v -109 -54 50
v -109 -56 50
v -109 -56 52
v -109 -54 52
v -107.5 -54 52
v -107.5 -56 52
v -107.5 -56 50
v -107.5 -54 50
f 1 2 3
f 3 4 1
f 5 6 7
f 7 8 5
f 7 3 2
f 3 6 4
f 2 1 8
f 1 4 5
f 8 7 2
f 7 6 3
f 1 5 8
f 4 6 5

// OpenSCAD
// file: ../../../cad/v3/hardware.scad
include <params.scad>
use <enclosure.scad>
// PROVISIONAL purchased component envelopes; not production part drawings.
module motor() {
 union() {
  translate([screw_x-6,motor_front-motor_l,motor_bottom]) cube([12,motor_l,10]);
  yrod(screw_x,motor_front-0.1,axis_z,shaft_d,shaft_l+0.1);
  for(x=[screw_x-3,screw_x+3]) translate([x-0.5,motor_front-motor_l-2,motor_bottom+4.5]) cube([1,2.1,1]);
 }
}
module shaft() { yrod(screw_x,motor_front,axis_z,shaft_d,shaft_l); }
module drive_nut(t=0) {
 difference() {
  translate([screw_x,carriage_back+t+nut_slot_y+0.1,axis_z]) rotate([-90,0,0]) union() {
   cylinder(d=nut_af/cos(30),h=nut_height,$fn=6);
   cylinder(d=nut_flange_d,h=nut_flange_t);
  }
  yrod(screw_x,carriage_back+t+nut_slot_y,axis_z,shaft_d+0.2,nut_height+0.2);
 }
}
module battery_holder(raise=0) {
 // Conservative single envelope including cell, contacts and holder.
 translate([93.2,-52,4.5+raise]) cube([22,74,21]);
}
module esp() {
 union() {
  translate([77.5,28,8.3]) cube([17.8,22.5,1.2]);
  translate([78.5,29,9.5]) cube([15.8,20.5,5]);
  translate([81.5,47,9.5]) cube([9,5,3.3]);
 }
}
module power_board() { translate([99,29,8.3]) cube([15,20,7.2]); }
module bridge_board() { translate([98.5,29,20.3]) cube([15,20,7]); }
module oled() {
 union() {
  translate([87.6,53.5,21.5]) cube([27.8,1.6,27.3]);
  translate([88.15,55.1,25]) cube([26.7,1.4,19.3]);
  translate([96.5,50.5,46]) cube([10,3,2.8]);
 }
}
module button() {
 union() {
  xrod(button_panel_x-button_body_l,button_y,button_z,button_body_d,button_body_l);
  xrod(button_panel_x,button_y,button_z,button_flange_d,2);
  xrod(button_panel_x+2,button_y,button_z,12.9,button_face_l-2);
  // Candidate fastening nut envelope; actual nut diameter/thickness to measure.
  difference() {
   xrod(button_panel_x-6,button_y,button_z,17.8,3);
   xrod(button_panel_x-6.1,button_y,button_z,button_hole_d,3.2);
  }
  // Two terminals only; solder and bend radius need physical confirmation.
  for(y=[button_y-2.425,button_y+2.425])
   translate([button_panel_x-button_body_l-button_terminal_l,y-.3,button_z-1]) cube([button_terminal_l,.6,2]);
 }
}
module acrylic() { translate([window_x0-2,window_y0-2,window_pane_z]) cube([window_x1-window_x0+4,window_y1-window_y0+4,window_pane_t]); }
module hinge_pin() { xrod(hinge_pin_x,hinge_y,hinge_z,2,hinge_pin_len); }
module thread_insert(x,y,z) {
 difference() {
  zhole(x,y,z,insert_od,insert_len);
  zhole(x,y,z-.1,2.05,insert_len+.2);
 }
}
module inserts_fixed() {
 for(p=battery_screws) thread_insert(p[0],p[1],2.9);
 for(x=keeper_x) thread_insert(x,keeper_y,44.3);
}
module inserts_lid() {
 for(p=window_clamps) thread_insert(p[0],p[1],window_ear_top);
}
module battery_connector() { translate([91.5,22,12.5]) cube([4.3,5,5]); }
module motor_pads() {
 // 0.3 mm compressed adhesive shim specification, not unspecified empty space.
 translate([78.5,motor_front-motor_l+.1,motor_bottom-0.3]) cube([12,motor_l-.2,0.3]);
 translate([78.5,motor_front-motor_l+.1,motor_top]) cube([12,motor_l-.2,0.3]);
 difference() {
  translate([78.5,-15,motor_bottom]) cube([12,0.3,10]);
  yrod(screw_x,-15.1,axis_z,4.7,0.6);
 }
 // Rear pad clears the two solder terminals.
 difference() {
  translate([78.5,motor_front-motor_l-.3,motor_bottom]) cube([12,0.3,10]);
  translate([80,motor_front-motor_l-.4,motor_bottom+4]) cube([9,0.5,2]);
 }
}
module board_pads() {
 translate([77.5,28,7.4]) cube([17.8,22.5,0.9]);
 translate([99,29,7.4]) cube([15,20,0.9]);
 translate([98.5,29,19.8]) cube([15,20,0.5]);
}

// Illustrative screw envelopes. Intentional pilot-thread interference is excluded
// from solid collision assertions. They remain in preview, BOM and total bounds.
module screw_down(x,y,top,len,d=2,flush=false) {
 color([0.45,0.47,0.5]) {
  zhole(x,y,top-len,d,len);
  if(flush) translate([x,y,top-1.3]) cylinder(d1=d,d2=4,h=1.3);
  else zhole(x,y,top,d==3?5.5:3.6,d==3?2:1.4);
 }
}
// Canonical fastener table: x,y,z,length,diameter,flush,rotationX,headless,owners.
// Preview and interference verification consume this SAME table.
// Stable connection names: keep existing names when adapting module brackets.
function fastener_ids(kind="fixed") = kind=="drive" ? ["F-nut-cap-left","F-nut-cap-right"] :
 kind=="lid" ? ["F-latch-left","F-latch-right","F-window-rear-left","F-window-rear-right","F-window-front-left","F-window-front-right"] :
 ["F-lock-rear-left","F-lock-rear-right","F-lock-front-left","F-lock-front-right",
 "F-guide-rear-left","F-guide-rear-right","F-guide-front","F-motor-left","F-motor-right",
 "F-tray-left","F-tray-right","F-deck-left","F-deck-right","F-esp-left","F-esp-right",
 "F-driver-left","F-driver-right","F-oled-left","F-oled-right",
 "F-battery-rear-left","F-battery-rear-right","F-battery-front-left","F-battery-front-right",
 "F-hinge-left","F-hinge-right"];
function fastener_specs(kind="fixed",t=0) = kind=="drive" ?
 [for(x=[screw_x-4.5,screw_x+4.5]) [x,carriage_back+t-0.2,46,6,2,false,0,false,["nut_cap","nut_carriage"]]] :
 kind=="lid" ? concat(
 [for(x=[93.5,112.5]) [x,8.5,45.2,8,3,false,180,false,["latch_retainer","lid"]]],
 [for(p=window_clamps) [p[0],p[1],window_inner_z,6,2,true,180,false,["window_grille","lid"]]]) :
 concat(
 [for(p=lock_mounts) [p[0],p[1],32.4,6,2,false,0,false,["lock_base","base_box"]]],
 [for(p=guide_screws) [p[0],p[1],44.9,8,2,false,0,false,["guide_cap","lock_base"]]],
 [for(p=motor_screws) [p[0],p[1],motor_clamp_z+2,8,2,false,0,false,["motor_clamp","lock_base"]]],
 [for(p=tray_screws) [p[0],p[1],7.4,4,2,false,0,false,["electronics_tray","base_box"]]],
 [for(p=deck_screws) [p[0],p[1],19.8,6,2,false,0,false,["upper_deck","electronics_tray"]]],
 [for(x=[76.2,96.7]) [x,39,16.8,6,2,false,0,false,["esp_clip","electronics_tray"]]],
 [for(x=[97,115]) [x,38,29.6,6,2,false,0,false,["upper_clip","upper_deck"]]],
 [for(x=[86.8,115.8]) [x,56.3,51,6,2,true,0,false,["oled_bridge","base_box"]]],
 [for(p=battery_screws) [p[0],p[1],0,8,2,true,180,false,["battery_hatch","base_box"]]],
 [for(i=[0:1]) [keeper_x[i],keeper_y,51.1,6,2,true,0,false,[i==0?"hinge_guard_left":"hinge_guard_right","base_box","inserts_fixed"]]]);
module render_screw(s) {
 translate([s[0],s[1],s[2]]) rotate([s[6],0,0])
 if(s[7]) zhole(0,0,-s[3],s[4],s[3]);
 else screw_down(0,0,0,s[3],s[4],s[5]);
}
module fixed_fasteners() { for(s=fastener_specs("fixed")) render_screw(s); }
module moving_fasteners(t=0) { for(s=fastener_specs("drive",t)) render_screw(s); }
module lid_fasteners() { for(s=fastener_specs("lid")) render_screw(s); }
// file: ../../../cad/v3/electronics.scad
include <params.scad>

module electronics_tray() {
 nominal_difference() {
  union() {
   cube_at([74.5,25.5,5.4],[42,27,2]);
   cube_at([74.5,25.5,7.3],[2.5,27,0.7]);
   cube_at([114,25.5,7.3],[2.5,27,0.7]);
   for(p=deck_screws) translate([p[0],p[1],7.3]) cylinder(r=1.3,h=10.7);
   for(x=[76.2,96.7]) cube_at([x-1.2,37,7.3],[2.4,4,7.5]);
  }
  for(p=tray_screws) pilot(p,5.2,8.2,2.4);
  for(x=[90,117]) zhole(x,24,5.2,6.4,3.2);
  for(p=deck_screws) pilot(p,13,18.2,1.7);
  for(x=[76.2,96.7]) zhole(x,39,9.8,1.7,5.2);
  // Tie slots for the lower power board; underside remains accessible off-box.
  for(x=[99.5,112.75]) cube_at([x,33,5.2],[tie_slot_width,8,3.2]);
 }
}
module upper_deck() {
 nominal_difference() {
  union() {
   cube_at([96,25.3,18],[21,27.2,1.8]);
   cube_at([96,27,19.7],[2.3,24,1.8]);
   cube_at([114.3,27,19.7],[2.7,24,1.8]);
   for(x=[97,115]) cube_at([x-1.3,36,19.7],[2.6,4,7.9]);
  }
  for(p=deck_screws) pilot(p,17.8,20,2.4);
  zhole(96.7,39,17.8,4,0.6);
  for(x=[97,115]) zhole(x,38,22.3,1.7,5.5);
 }
}
module esp_clip() {
 nominal_difference() {
  cube_at([74.5,37,14.8],[24,4,2]);
  for(x=[76.2,96.7]) zhole(x,39,14.6,2.4,2.4);
 }
}
module upper_clip() {
 nominal_difference() {
  cube_at([95.5,36,27.6],[21.5,4,2]);
  for(x=[97,115]) zhole(x,38,27.4,2.2,2.4);
 }
}
module oled_bridge() {
 nominal_difference() {
  cube_at([84.3,52.5,49.2],[34,6.1,1.8]);
  for(x=[86.8,115.8]) {
   zhole(x,56.3,49,2.4,2.2);
   countersink(x,56.3,49.7,2.4,4,1.3);
  }
 }
}
// file: ../../../cad/v3/lock.scad
include <params.scad>

module lock_base() {
 nominal_difference() {
  union() {
   cube_at([75,-46,lock_floor],[41,68,3]);
   // Continuous independent bolt support: bed, keyed rail, removable roof.
   cube_at([91,-19,lock_floor_top],[20,24.5,guide_bottom-lock_floor_top]);
   cube_at([bolt_x-key_w/2,-19,key_z0],[key_w,24.5,key_z1-key_z0]);
   for(p=guide_screws) translate([p[0],p[1],lock_floor_top-0.01]) cylinder(r=2.3,h=guide_top-lock_floor_top+0.01);
   for(p=motor_screws) translate([p[0],p[1],lock_floor_top-0.01]) cylinder(r=2.2,h=motor_clamp_z-lock_floor_top+0.01);
   // Motor cradle and front locating shoulder; clamp presses through thin pads.
   cube_at([77.2,-41.8,32.4],[14.6,27.5,motor_bottom-0.3-32.4]);
   cube_at([77.2,-16,32.4],[14.6,2.3,motor_clamp_z-32.4]);
   // Blind front socket: usable bore ends Y=19.8; last 1 mm is solid.
   cube_at([bolt_x-6,14.8,32.4],[12,6,11.6]);
  }
  // Conservative 25x12x10 body; includes the 2.5mm output offset.
  cube_at([screw_x-motor_w/2-0.3,motor_front-motor_l-0.3,motor_bottom-0.3],[motor_w+0.6,motor_l+0.6,motor_h+0.6]);
  yhole(screw_x,-16.3,axis_z,4.7,4);
  // Top-open U seat permits vertical insertion of motor + threaded drive.
  cube_at([screw_x-2.35,-16.3,axis_z],[4.7,4,motor_clamp_z-axis_z+0.2]);
  cube_at([bolt_x-latch_hole/2,13.8,axis_z-latch_hole/2],[latch_hole,6,latch_hole]);
  for(p=lock_mounts) pilot(p,29.2,32.6,2.4);
  for(p=guide_screws) pilot(p,33.2,43.1);
  for(p=motor_screws) pilot(p,motor_clamp_z-6,motor_clamp_z+0.2);
  // Flat reusable rail for future mechanical feedback adapters (SKU pending).
  for(y=[-12,2]) for(x=[112,115]) cube_at([x,y,29.2],[tie_slot_width,5,3.5]);
  // Wiring channels; no closed tunnel around the actuator.
  cube_at([110,15,29.2],[3,7.2,3.5]);
 }
}
module guide_cap() {
 nominal_difference() {
  cube_at([92,-20.5,guide_top],[23,26,guide_cap_t]);
  for(p=guide_screws) pilot(p,42.7,45.1,2.4);
 }
}
module motor_clamp() {
 nominal_difference() {
  cube_at([73.8,-35,motor_clamp_z],[21.4,16,2]);
  for(p=motor_screws) pilot(p,motor_clamp_z-0.2,motor_clamp_z+2.2,2.4);
  cube_at([90.8,-20.7,motor_clamp_z-0.2],[4.6,1.8,2.4]);
 }
}
module bolt_raw(t=0) {
 rear=bolt_back+t;
 nominal_difference() {
  union() {
   cube_at([bolt_x-body_w/2,rear-4,axis_z-body_w/2],[body_w,body_l+4,body_w]);
   cube_at([bolt_x-3,rear+body_l,axis_z-3],[6,tongue_l-taper_l+0.01,6]);
   translate([bolt_x,rear+body_l+tongue_l-taper_l,axis_z]) rotate([-90,0,0])
    linear_extrude(height=taper_l,scale=5/6) square([6,6],center=true);
   // Fork overlaps the main body; lateral/vertical float around the drive finger.
   cube_at([92,rear,axis_z-body_w/2],[7.6,6,body_w]);
  }
  cube_at([91,rear+1.7,35.2],[8.6,2.6,5.6]);
  cube_at([bolt_x-(key_w+0.6)/2,rear-4.1,33.2],[key_w+0.6,body_l+4.2,1.6]);
 }
}
module bolt(t=0,shift=0) { translate([0,0,shift]) bolt_raw(t); }
module nut_carriage(t=0) {
 rear=carriage_back+t;
 nominal_difference() {
  union() {
   cube_at([screw_x-7,rear-2,33.4],[13,10,10.6]);
   cube_at([screw_x+4.5,rear-1.5,36],[8.7,2,4]);
  }
  yhole(screw_x,rear-3,axis_z,shaft_d+0.4,12);
  translate([screw_x,rear+nut_slot_y,axis_z]) rotate([-90,0,0]) {
   cylinder(d=nut_slot_d,h=nut_slot_t,$fn=6);
   cylinder(d=nut_flange_d+0.4,h=nut_flange_t+0.2);
  }
  // Wide open top access for the nut: larger than its circumdiameter.
  cube_at([screw_x-5.3,rear+nut_slot_y,axis_z],[10.6,nut_slot_t,6.2]);
  for(x=[screw_x-4.5,screw_x+4.5]) zhole(x,rear-0.2,39.5,1.7,4.7);
 }
}
module nut_cap(t=0) {
 rear=carriage_back+t;
 nominal_difference() {
  cube_at([screw_x-6.5,rear-2,44],[12.5,10,2]);
  for(x=[screw_x-4.5,screw_x+4.5]) zhole(x,rear-0.2,43.8,2.4,2.4);
 }
}
module fit_bar() { cube([tongue_w,tongue_w,25]); }
module fit_gauge() {
 nominal_difference() {
  cube([30,14,8]);
  for(i=[0:2]) cube_at([2+i*9,3,-0.1],[6.4+i*0.2,6.4+i*0.2,8.2]);
 }
}
// file: ../../../cad/v3/enclosure.scad
include <params.scad>

module base_box() {
 nominal_difference() {
  union() {
   nominal_difference() {
    linear_extrude(height=shell_top) rounded_rect(L,W,4);
    translate([0,0,floor_t]) linear_extrude(height=49) rounded_rect(L-2*wall,W-2*wall,1);
   }
   cube_at([70.5,-57,2.9],[3,114,48.1]);
   // Stationary rear header reaches the same closed height as the lid.
   intersection() {
    cube_at([-117,-60,47],[234,9,8]);
    union() { cube_at([-118,-61,46],[236,11,5]); xrod(-118,hinge_y,hinge_z,8,236); }
   }
   for(k=fixed_knuckles) xrod(k[0],hinge_y,hinge_z,hinge_od,k[1]-k[0]);
   for(x=keeper_x) cube_at([x-4,-54,43.5],[8,6.5,4.8]);
   // Battery chamber: side/end walls and a fixed ceiling connected to outer wall.
   cube_at([90,-54.5,2.9],[2.7,79,23.1]);
   cube_at([90,-54.5,2.9],[30,2.2,23.1]);
   cube_at([90,22.3,2.9],[30,2.2,23.1]);
   cube_at([90,-54.5,26],[30,79,3.4]);
   for(p=battery_screws) translate([p[0],p[1],2.8]) cylinder(r=3,h=5.5);
   for(p=lock_mounts) if(p[0]<90) translate([p[0],p[1],2.9]) cylinder(r=3,h=26.5);
   for(p=tray_screws) translate([p[0],p[1],2.9]) cylinder(r=2.3,h=2.5);
   // OLED bottom stop and two connected side rails.
   cube_at([85.3,53,19.2],[32.4,4.1,2]);
   cube_at([85.3,53,21.1],[2.3,4.1,28.1]);
   cube_at([115.4,53,21.1],[2.3,4.1,28.1]);
   // Recessed side-wall panel: 5.7mm button face stays inside X=120.
   difference() {
    xrod(button_panel_x-3,button_y,button_z,21,120-(button_panel_x-3));
    xrod(button_panel_x,button_y,button_z,18.8,120-button_panel_x+.1);
   }

  }
  // A continuous bore is essential: otherwise the fixed header traps the pin.
  xhole(-120.1,hinge_y,hinge_z,hinge_bore,240.2);
  // Moving hinge knuckles and webs get a rectangular swept-side relief.
  for(k=moving_knuckles) cube_at([k[0]-0.3,-60.2,46.6],[k[1]-k[0]+0.6,9.8,9]);
  for(x=keeper_x) {
   cube_at([x-4.3,-58.3,48.3],[8.6,11.1,7]);
   zhole(x,keeper_y,43.8,2.4,4.6);
   let($feature_kind="insert") zhole(x,keeper_y,44.2,insert_hole_d(),4.2);
  }
  // Battery extraction aperture, and a shallow seat for the flush service plate.
  cube_at([92.7,-52.3,-0.1],[22.6,74.6,8.6]);
  cube_at([87.7,-56.3,-0.1],[31.6,82.6,3]);
  for(p=battery_screws) {
   pilot(p,2.7,8.4,2.4);
   let($feature_kind="insert") zhole(p[0],p[1],2.8,insert_hole_d(),4.1);
  }
  for(p=lock_mounts) pilot(p,26.2,29.6,1.7);
  for(p=tray_screws) pilot(p,3.1,5.6,1.7);
  // Battery connector passage enters the electronics bay, not the actuator above.
  cube_at([91,21.8,12],[7,3.4,6]);
  // Front optical window / recessed button. There is deliberately no USB hole.
  cube_at([87.7,56.7,24.5],[27.6,3.6,20.5]);
  xhole(button_panel_x-3.1,button_y,button_z,button_hole_d,3.2);
  xhole(button_panel_x,button_y,button_z,18.8,120-button_panel_x+.1);
  // PCB insertion channels; stop ledge remains below them.
  cube_at([87.3,53.2,21.3],[28.4,2.2,28.2]);
  cube_at([84.2,52.4,49.2],[34.2,6.3,1.9]);
  for(x=[86.8,115.8]) zhole(x,56.3,43,1.7,6.5);
 }
}
module lid() {
 union() {
 nominal_difference() {
  union() {
   cube_at([-120,-50.5,lid_bottom],[240,110.5,H-lid_bottom]);
   for(k=moving_knuckles) {
    xrod(k[0],hinge_y,hinge_z,hinge_od,k[1]-k[0]);
    cube_at([k[0],-53,51.4],[k[1]-k[0],4,3.6]);
   }
   // Internal T-head receiver and inside-only retainer screw lands.
   cube_at([92,3,46.7],[22,11,4.8]);
   // Inside-only hard stops carry screw preload instead of crushing the pane.
   for(p=window_clamps) cube_at([p[0]-9,p[1]-3.5,window_ear_top],[18,7,lid_bottom+0.1-window_ear_top]);
  }
  for(k=moving_knuckles) xhole(k[0]-0.1,hinge_y,hinge_z,hinge_bore,k[1]-k[0]+0.2);
  cube_at([window_x0,window_y0,window_ear_top-0.1],[window_x1-window_x0,window_y1-window_y0,H-window_ear_top+0.2]);
  // Interior rebate clears the pane; the outside grille closes it.
  cube_at([window_x0-3,window_y0-3,window_ear_top-0.1],[window_x1-window_x0+6,window_y1-window_y0+6,window_outer_z-window_ear_top+0.1]);
  cube_at([94.7,5.7,46.6],[16.6,5.6,3.7]);
  cube_at([97.2,5.7,45.8],[11.6,5.6,4.5]);
  for(x=[93.5,112.5]) zhole(x,8.5,45.8,2.4,8.4);
  for(p=window_clamps) {
   zhole(p[0],p[1],window_ear_top-0.1,2.4,54.2-window_ear_top+0.1);
   let($feature_kind="insert") zhole(p[0],p[1],window_ear_top-0.1,insert_hole_d(),4.1);
  }
 }
 // Union after cutting the opening: five short-span ribs join both edges.
 translate([0,0,window_outer_z]) linear_extrude(height=H-window_outer_z) window_grid_2d();
 }
}
module latch() {
 nominal_difference() {
  union() {
   cube_at([bolt_x-5.5,latch_y,latch_z0],[11,5,43.1-latch_z0]);
   cube_at([bolt_x-latch_neck_w/2,latch_y,43],[latch_neck_w,5,2.1]);
   cube_at([bolt_x-5.5,latch_y,45],[11,5,2.1]);
   cube_at([bolt_x-8,latch_y,47],[16,5,3]);
  }
  cube_at([bolt_x-latch_hole/2,latch_y-0.1,axis_z-latch_hole/2],[latch_hole,5.2,latch_hole]);
 }
}
module latch_retainer() {
 nominal_difference() {
  cube_at([92,3,retainer_z],[22,11,retainer_t]);
  cube_at([97.2,5.7,45],[11.6,5.6,2]);
  for(x=[93.5,112.5]) zhole(x,8.5,45,3.4,2);
 }
}
module window_grid_2d() {
 union() {
  nominal_difference() {
   translate([window_x0-3,window_y0-3]) square([window_x1-window_x0+6,window_y1-window_y0+6]);
   translate([window_x0,window_y0]) square([window_x1-window_x0,window_y1-window_y0]);
  }
  for(x=window_bar_x) {
   translate([x-window_bar_w/2,window_y0-2]) square([window_bar_w,window_y1-window_y0+4]);
   // Concave radius at all four rib roots, tangent to rib and window frame.
   for(side=[-1,1]) for(end=[0,1])
    translate([x+side*window_bar_w/2,end?window_y1:window_y0]) scale([side,end?-1:1])
     nominal_difference() { square([window_root_r,window_root_r]); translate([window_root_r,window_root_r]) circle(r=window_root_r); }
  }
 }
}
module window_grille() {
 nominal_difference() {
  union() {
   translate([0,0,window_inner_z]) linear_extrude(height=window_inner_t) window_grid_2d();
   for(p=window_clamps) cube_at([p[0]-9,p[1]-3.5,window_inner_z],[18,7,window_ear_t]);
  }
  for(p=window_clamps) {
   zhole(p[0],p[1],window_inner_z-0.1,2.4,window_inner_t+0.2);
   countersink(p[0],p[1],window_inner_z-0.01,4.2,2.4,1.31);
  }
 }
}
module battery_hatch() {
 nominal_difference() {
  union() {
   cube_at([88,-56,0],[31,82,2.6]);
   for(x=[96,112]) for(y=[-47,17]) cube_at([x-2,y-2,2.5],[4,4,1.8]);
  }
  for(p=battery_screws) {
   pilot(p,-0.1,2.8,2.4);
   countersink(p[0],p[1],-0.01,4.2,2.4,1.3);
  }
 }
}
module hinge_guard(side=-1) {
 x=side<0?keeper_x[0]:keeper_x[1];
 stop=side<0?hinge_pin_x-pin_end_play-keeper_wall:hinge_pin_x+hinge_pin_len+pin_end_play;
 nominal_difference() {
  union() {
   intersection() {
    union() {
     cube_at([x-4,-58,53],[8,7.2,2]);
     cube_at([x-4,-52,48.3],[8,1.2,6.7]);
     // End cheek remains within the fixed hinge's radial envelope.
     cube_at([stop,-58,48.3],[keeper_wall,6,6.7]);
    }
    xrod(x-4.1,hinge_y,hinge_z,8.4,8.2);
   }
   cube_at([x-4,-53.6,48.3],[8,6.1,2.8]);
  }
  zhole(x,keeper_y,48.1,2.4,3.2);
  countersink(x,keeper_y,49.8,2.4,4,1.3);
  zhole(x,keeper_y,51.09,4.2,4);
 }
}

module insert_coupon() {
 nominal_difference() {
  cube([36,12,6]);
  for(i=[0:2]) {
   zhole(6+i*12,6,1.8,2.8+i*.1,4.3);
   countersink(6+i*12,6,5.6,2.8+i*.1,3.5,.5);
  }
 }
}
module keeper_insert_coupon() {
 nominal_difference() {
  cube([8,6.5,4.8]);
  zhole(4,3.5,.3,2.4,4.6);
  zhole(4,3.5,.7,insert_pilot_d,4.2);
 }
}
module window_insert_coupon() {
 nominal_difference() {
  cube([18,7,5.1]);
  zhole(9,3.5,-.1,2.4,4.4);
  zhole(9,3.5,-.1,insert_pilot_d,4.1);
 }
}
module hinge_bore_coupon() {
 nominal_difference() {
  cube([20,30,8]);
  for(i=[0:2]) xhole(-.1,5+i*10,4,2.2+i*.2,20.2);
 }
}
// file: ../../../cad/v3/references.scad
// Generated from engineering/references.json; do not edit.
// SHA256 f9069af00d99415f6bf80c07423463d1202e891299ade11124e069a9ba9990c0
// Visual corner/platform profiles are approximate. Dimensions are nominal mm.
module reference_phone() {
 translate([-23,0,0]) union() {
  translate([0,0,9.43]) linear_extrude(height=8.75)
   offset(r=12) square([139.4,54.0],center=true);
  translate([-55.7,0,6.88])
   linear_extrude(height=2.55) offset(r=9) square([28,56],center=true);
  translate([-67.33,-24.630000000000003,5]) cylinder(d=16.2,h=1.88,$fn=64);
  translate([-48.09,-24.630000000000003,5]) cylinder(d=16.2,h=1.88,$fn=64);
  translate([-57.71000000000001,-6.640000000000001,5]) cylinder(d=16.2,h=1.88,$fn=64);
  translate([-50.870000000000005,-39.45,12.475]) cube([6.9,.45,2.66]);
  translate([-38.870000000000005,-39.45,12.475]) cube([11.2,.45,2.66]);
  translate([-24.67,-39.45,12.475]) cube([11.2,.45,2.66]);
  translate([-35.02,39.0,12.475]) cube([17.7,.45,2.66]);
  translate([21.56999999999999,39.0,12.475]) cube([17.1,.45,2.66]);
 }
}
module reference_card() {
 translate([-7,0,18.18])
 linear_extrude(height=0.76) offset(r=3.18)
 square([79.24,47.62],center=true);
}
// file: ../../../cad/v3/params.scad
// TetherLock V3 STRUCTURAL PROTOTYPE. mm / degrees. Hardware SKUs NOT frozen.
// World: X long direction; +Y front; Z bottom=0. Closed assembly <=240x120x55.
$fn=48;
L=240; W=120; H=55;
wall=3; floor_t=3; shell_top=51; lid_bottom=51.4;
divider_x=72; divider_t=3;
hinge_y=-55; hinge_z=51; hinge_od=8; hinge_bore=2.4;
fixed_knuckles=[[-102,-90],[-30,-18],[42,54]];
moving_knuckles=[[-89.6,-78],[-17.6,-6],[54.4,66]];
hinge_pin_x=-107; hinge_pin_len=180;
keeper_x=[-108,77.5]; keeper_y=-50.5;
pin_end_play=0.5; keeper_wall=1.5;
insert_od=3.2; insert_len=4; insert_pilot_d=2.9;
$print_bores=false;
function insert_hole_d() = $print_bores ? insert_pilot_d : insert_od+0.05;
stroke=14;
bolt_x=103; axis_z=38; bolt_back=-14.5; carriage_back=-11;
body_w=9.2; body_l=6; tongue_w=6; tongue_l=13.5; taper_l=0.8;
guide_clearance=0.3;
screw_x=84.5; motor_front=-15;
// Seller image: gearbox 9; motor text 16 vs drawing 15; reserve 25 total.
// Output offset 2.5: rotate motor about its shaft so body is ABOVE the axis.
motor_l=25; motor_w=12; motor_h=10; motor_axis_offset=2.5;
shaft_l=55; shaft_d=4; shaft_pitch=0.7; shaft_length_tolerance=1;
motor_bottom=axis_z+motor_axis_offset-motor_h/2;
motor_top=motor_bottom+motor_h; motor_clamp_z=motor_top+0.3;
// Supplier flange nut NOT dimensioned: conservative adjustable candidate.
nut_af=7; nut_flange_d=10; nut_height=5; nut_flange_t=1;
// R16-503 drawing; threaded mounting diameter remains provisional 16mm.
button_y=30; button_z=40.5; button_panel_x=114;
button_hole_d=16.4; button_body_d=15.8; button_flange_d=17.8;
button_body_l=18.3; button_terminal_l=6; button_face_l=5.7;
tie_width=2.5; tie_slot_width=3.0;
lock_floor=29.4; lock_floor_top=32.4;
guide_bottom=33.1; guide_top=42.9; guide_cap_t=2;
key_w=2.8; key_z0=33.0; key_z1=34.5;
nut_slot_d=nut_af/cos(30)+0.4; nut_slot_y=1.5; nut_slot_t=nut_height+0.4;
latch_y=6; latch_t=5; latch_hole=6.8;
latch_z0=32.6; latch_neck_w=6;
retainer_z=45.2; retainer_t=1.5;
window_x0=-100; window_x1=45; window_y0=-38; window_y1=40;
window_clamps=[[-94,-43],[39,-43],[-94,45],[39,45]];
window_bar_x=[-76,-52,-28,-4,20]; window_bar_w=5; window_root_r=2;
window_outer_z=52; window_pane_t=1.5;
window_pane_z=window_outer_z-window_pane_t;
// Pane contact and screw ears are independent: preload is carried by the ears.
window_inner_z=47.4; window_inner_t=3.1;
window_inner_top=window_inner_z+window_inner_t;
window_ear_t=2.5; window_ear_top=window_inner_z+window_ear_t;
assert(window_inner_z>=47,"Window grille must preserve storage headroom");
lock_mounts=[[77,-43],[113,-43],[77,19],[113,19]];
guide_screws=[[93.5,-18],[114,-18],[114,-2]];
motor_screws=[[76,-27],[93,-27]];
battery_screws=[[90,-54],[117,-54],[90,24],[117,24]];
tray_screws=[[76,27],[115,51]];
deck_screws=[[97.5,27],[115,50.8]];
print_parts=["base_box","lid","lock_base","guide_cap","motor_clamp",
 "bolt","nut_carriage","nut_cap","latch","latch_retainer","window_grille",
 "battery_hatch","electronics_tray","upper_deck","esp_clip","upper_clip",
 "oled_bridge","hinge_guard_left","hinge_guard_right","fit_bar","fit_gauge",
 "insert_coupon","keeper_insert_coupon","window_insert_coupon","hinge_bore_coupon"];
assembly_parts=["base_box","lid","lock_base","guide_cap","motor_clamp",
 "bolt","nut_carriage","nut_cap","latch","latch_retainer",
 "window_grille",
 "battery_hatch","electronics_tray","upper_deck","esp_clip","upper_clip","oled_bridge",
 "hinge_guard_left","hinge_guard_right"];
hardware_parts=["motor","drive_nut","battery_holder","esp","power_board",
 "bridge_board","oled","button","acrylic","hinge_pin","inserts_fixed","inserts_lid",
 "battery_connector",
 "motor_pads","board_pads"];
// All holes below are pilot/clearance geometry, not modelled screw threads.
module feature(axis,center,d,h,kind="clearance",details=[]) {
 if(!is_undef($export_features) && $export_features)
  echo(["TL_FEATURE",$feature_part,axis,center,d,h,kind,details]);
}
// These wrappers keep CAD feature dimensions attached to the geometry that uses
// them. The boolean operation is part of the export, not guessed from a mesh.
module nominal_difference() {
 base=is_undef($feature_operation)?"solid":$feature_operation;
 difference() {
  let($feature_operation=base) children(0);
  if($children>1) for(i=[1:$children-1])
   let($feature_operation=base=="solid"?"cut":"solid") children(i);
 }
}
module cube_at(position,size) {
 feature("BOX",position,0,0,"box",[size,is_undef($feature_operation)?"solid":$feature_operation]);
 translate(position) cube(size);
}
module zhole(x,y,z,d,h) {
 feature("Z",[x,y,z],d,h,is_undef($feature_kind)?(d<2?"pilot":"clearance"):$feature_kind);
 translate([x,y,z]) cylinder(d=d,h=h);
}
module yrod(x,y,z,d,h) { translate([x,y,z]) rotate([-90,0,0]) cylinder(d=d,h=h); }
module xrod(x,y,z,d,h) { translate([x,y,z]) rotate([0,90,0]) cylinder(d=d,h=h); }
module yhole(x,y,z,d,h,kind="clearance") { feature("Y",[x,y,z],d,h,kind); yrod(x,y,z,d,h); }
module xhole(x,y,z,d,h,kind="clearance") { feature("X",[x,y,z],d,h,kind); xrod(x,y,z,d,h); }
module countersink(x,y,z,d1,d2,h) {
 feature("Z",[x,y,z],d1,h,"countersink",[d2]);
 translate([x,y,z]) cylinder(d1=d1,d2=d2,h=h);
}
module rounded_rect(l,w,r) { offset(r=r) square([l-2*r,w-2*r],center=true); }
module lid_turn(a) { translate([0,hinge_y,hinge_z]) rotate([a,0,0]) translate([0,-hinge_y,-hinge_z]) children(); }
module pilot(xy,z0,z1,d=1.7) { let($feature_kind=d<2?"pilot":"clearance") zhole(xy[0],xy[1],z0,d,z1-z0); }
// main file
include <../../../cad/v3/assembly.scad>
view="metadata";
intersection(){hinge_guard(-1);translate([-109.1,-56,50])cube([2,2,2]);}
